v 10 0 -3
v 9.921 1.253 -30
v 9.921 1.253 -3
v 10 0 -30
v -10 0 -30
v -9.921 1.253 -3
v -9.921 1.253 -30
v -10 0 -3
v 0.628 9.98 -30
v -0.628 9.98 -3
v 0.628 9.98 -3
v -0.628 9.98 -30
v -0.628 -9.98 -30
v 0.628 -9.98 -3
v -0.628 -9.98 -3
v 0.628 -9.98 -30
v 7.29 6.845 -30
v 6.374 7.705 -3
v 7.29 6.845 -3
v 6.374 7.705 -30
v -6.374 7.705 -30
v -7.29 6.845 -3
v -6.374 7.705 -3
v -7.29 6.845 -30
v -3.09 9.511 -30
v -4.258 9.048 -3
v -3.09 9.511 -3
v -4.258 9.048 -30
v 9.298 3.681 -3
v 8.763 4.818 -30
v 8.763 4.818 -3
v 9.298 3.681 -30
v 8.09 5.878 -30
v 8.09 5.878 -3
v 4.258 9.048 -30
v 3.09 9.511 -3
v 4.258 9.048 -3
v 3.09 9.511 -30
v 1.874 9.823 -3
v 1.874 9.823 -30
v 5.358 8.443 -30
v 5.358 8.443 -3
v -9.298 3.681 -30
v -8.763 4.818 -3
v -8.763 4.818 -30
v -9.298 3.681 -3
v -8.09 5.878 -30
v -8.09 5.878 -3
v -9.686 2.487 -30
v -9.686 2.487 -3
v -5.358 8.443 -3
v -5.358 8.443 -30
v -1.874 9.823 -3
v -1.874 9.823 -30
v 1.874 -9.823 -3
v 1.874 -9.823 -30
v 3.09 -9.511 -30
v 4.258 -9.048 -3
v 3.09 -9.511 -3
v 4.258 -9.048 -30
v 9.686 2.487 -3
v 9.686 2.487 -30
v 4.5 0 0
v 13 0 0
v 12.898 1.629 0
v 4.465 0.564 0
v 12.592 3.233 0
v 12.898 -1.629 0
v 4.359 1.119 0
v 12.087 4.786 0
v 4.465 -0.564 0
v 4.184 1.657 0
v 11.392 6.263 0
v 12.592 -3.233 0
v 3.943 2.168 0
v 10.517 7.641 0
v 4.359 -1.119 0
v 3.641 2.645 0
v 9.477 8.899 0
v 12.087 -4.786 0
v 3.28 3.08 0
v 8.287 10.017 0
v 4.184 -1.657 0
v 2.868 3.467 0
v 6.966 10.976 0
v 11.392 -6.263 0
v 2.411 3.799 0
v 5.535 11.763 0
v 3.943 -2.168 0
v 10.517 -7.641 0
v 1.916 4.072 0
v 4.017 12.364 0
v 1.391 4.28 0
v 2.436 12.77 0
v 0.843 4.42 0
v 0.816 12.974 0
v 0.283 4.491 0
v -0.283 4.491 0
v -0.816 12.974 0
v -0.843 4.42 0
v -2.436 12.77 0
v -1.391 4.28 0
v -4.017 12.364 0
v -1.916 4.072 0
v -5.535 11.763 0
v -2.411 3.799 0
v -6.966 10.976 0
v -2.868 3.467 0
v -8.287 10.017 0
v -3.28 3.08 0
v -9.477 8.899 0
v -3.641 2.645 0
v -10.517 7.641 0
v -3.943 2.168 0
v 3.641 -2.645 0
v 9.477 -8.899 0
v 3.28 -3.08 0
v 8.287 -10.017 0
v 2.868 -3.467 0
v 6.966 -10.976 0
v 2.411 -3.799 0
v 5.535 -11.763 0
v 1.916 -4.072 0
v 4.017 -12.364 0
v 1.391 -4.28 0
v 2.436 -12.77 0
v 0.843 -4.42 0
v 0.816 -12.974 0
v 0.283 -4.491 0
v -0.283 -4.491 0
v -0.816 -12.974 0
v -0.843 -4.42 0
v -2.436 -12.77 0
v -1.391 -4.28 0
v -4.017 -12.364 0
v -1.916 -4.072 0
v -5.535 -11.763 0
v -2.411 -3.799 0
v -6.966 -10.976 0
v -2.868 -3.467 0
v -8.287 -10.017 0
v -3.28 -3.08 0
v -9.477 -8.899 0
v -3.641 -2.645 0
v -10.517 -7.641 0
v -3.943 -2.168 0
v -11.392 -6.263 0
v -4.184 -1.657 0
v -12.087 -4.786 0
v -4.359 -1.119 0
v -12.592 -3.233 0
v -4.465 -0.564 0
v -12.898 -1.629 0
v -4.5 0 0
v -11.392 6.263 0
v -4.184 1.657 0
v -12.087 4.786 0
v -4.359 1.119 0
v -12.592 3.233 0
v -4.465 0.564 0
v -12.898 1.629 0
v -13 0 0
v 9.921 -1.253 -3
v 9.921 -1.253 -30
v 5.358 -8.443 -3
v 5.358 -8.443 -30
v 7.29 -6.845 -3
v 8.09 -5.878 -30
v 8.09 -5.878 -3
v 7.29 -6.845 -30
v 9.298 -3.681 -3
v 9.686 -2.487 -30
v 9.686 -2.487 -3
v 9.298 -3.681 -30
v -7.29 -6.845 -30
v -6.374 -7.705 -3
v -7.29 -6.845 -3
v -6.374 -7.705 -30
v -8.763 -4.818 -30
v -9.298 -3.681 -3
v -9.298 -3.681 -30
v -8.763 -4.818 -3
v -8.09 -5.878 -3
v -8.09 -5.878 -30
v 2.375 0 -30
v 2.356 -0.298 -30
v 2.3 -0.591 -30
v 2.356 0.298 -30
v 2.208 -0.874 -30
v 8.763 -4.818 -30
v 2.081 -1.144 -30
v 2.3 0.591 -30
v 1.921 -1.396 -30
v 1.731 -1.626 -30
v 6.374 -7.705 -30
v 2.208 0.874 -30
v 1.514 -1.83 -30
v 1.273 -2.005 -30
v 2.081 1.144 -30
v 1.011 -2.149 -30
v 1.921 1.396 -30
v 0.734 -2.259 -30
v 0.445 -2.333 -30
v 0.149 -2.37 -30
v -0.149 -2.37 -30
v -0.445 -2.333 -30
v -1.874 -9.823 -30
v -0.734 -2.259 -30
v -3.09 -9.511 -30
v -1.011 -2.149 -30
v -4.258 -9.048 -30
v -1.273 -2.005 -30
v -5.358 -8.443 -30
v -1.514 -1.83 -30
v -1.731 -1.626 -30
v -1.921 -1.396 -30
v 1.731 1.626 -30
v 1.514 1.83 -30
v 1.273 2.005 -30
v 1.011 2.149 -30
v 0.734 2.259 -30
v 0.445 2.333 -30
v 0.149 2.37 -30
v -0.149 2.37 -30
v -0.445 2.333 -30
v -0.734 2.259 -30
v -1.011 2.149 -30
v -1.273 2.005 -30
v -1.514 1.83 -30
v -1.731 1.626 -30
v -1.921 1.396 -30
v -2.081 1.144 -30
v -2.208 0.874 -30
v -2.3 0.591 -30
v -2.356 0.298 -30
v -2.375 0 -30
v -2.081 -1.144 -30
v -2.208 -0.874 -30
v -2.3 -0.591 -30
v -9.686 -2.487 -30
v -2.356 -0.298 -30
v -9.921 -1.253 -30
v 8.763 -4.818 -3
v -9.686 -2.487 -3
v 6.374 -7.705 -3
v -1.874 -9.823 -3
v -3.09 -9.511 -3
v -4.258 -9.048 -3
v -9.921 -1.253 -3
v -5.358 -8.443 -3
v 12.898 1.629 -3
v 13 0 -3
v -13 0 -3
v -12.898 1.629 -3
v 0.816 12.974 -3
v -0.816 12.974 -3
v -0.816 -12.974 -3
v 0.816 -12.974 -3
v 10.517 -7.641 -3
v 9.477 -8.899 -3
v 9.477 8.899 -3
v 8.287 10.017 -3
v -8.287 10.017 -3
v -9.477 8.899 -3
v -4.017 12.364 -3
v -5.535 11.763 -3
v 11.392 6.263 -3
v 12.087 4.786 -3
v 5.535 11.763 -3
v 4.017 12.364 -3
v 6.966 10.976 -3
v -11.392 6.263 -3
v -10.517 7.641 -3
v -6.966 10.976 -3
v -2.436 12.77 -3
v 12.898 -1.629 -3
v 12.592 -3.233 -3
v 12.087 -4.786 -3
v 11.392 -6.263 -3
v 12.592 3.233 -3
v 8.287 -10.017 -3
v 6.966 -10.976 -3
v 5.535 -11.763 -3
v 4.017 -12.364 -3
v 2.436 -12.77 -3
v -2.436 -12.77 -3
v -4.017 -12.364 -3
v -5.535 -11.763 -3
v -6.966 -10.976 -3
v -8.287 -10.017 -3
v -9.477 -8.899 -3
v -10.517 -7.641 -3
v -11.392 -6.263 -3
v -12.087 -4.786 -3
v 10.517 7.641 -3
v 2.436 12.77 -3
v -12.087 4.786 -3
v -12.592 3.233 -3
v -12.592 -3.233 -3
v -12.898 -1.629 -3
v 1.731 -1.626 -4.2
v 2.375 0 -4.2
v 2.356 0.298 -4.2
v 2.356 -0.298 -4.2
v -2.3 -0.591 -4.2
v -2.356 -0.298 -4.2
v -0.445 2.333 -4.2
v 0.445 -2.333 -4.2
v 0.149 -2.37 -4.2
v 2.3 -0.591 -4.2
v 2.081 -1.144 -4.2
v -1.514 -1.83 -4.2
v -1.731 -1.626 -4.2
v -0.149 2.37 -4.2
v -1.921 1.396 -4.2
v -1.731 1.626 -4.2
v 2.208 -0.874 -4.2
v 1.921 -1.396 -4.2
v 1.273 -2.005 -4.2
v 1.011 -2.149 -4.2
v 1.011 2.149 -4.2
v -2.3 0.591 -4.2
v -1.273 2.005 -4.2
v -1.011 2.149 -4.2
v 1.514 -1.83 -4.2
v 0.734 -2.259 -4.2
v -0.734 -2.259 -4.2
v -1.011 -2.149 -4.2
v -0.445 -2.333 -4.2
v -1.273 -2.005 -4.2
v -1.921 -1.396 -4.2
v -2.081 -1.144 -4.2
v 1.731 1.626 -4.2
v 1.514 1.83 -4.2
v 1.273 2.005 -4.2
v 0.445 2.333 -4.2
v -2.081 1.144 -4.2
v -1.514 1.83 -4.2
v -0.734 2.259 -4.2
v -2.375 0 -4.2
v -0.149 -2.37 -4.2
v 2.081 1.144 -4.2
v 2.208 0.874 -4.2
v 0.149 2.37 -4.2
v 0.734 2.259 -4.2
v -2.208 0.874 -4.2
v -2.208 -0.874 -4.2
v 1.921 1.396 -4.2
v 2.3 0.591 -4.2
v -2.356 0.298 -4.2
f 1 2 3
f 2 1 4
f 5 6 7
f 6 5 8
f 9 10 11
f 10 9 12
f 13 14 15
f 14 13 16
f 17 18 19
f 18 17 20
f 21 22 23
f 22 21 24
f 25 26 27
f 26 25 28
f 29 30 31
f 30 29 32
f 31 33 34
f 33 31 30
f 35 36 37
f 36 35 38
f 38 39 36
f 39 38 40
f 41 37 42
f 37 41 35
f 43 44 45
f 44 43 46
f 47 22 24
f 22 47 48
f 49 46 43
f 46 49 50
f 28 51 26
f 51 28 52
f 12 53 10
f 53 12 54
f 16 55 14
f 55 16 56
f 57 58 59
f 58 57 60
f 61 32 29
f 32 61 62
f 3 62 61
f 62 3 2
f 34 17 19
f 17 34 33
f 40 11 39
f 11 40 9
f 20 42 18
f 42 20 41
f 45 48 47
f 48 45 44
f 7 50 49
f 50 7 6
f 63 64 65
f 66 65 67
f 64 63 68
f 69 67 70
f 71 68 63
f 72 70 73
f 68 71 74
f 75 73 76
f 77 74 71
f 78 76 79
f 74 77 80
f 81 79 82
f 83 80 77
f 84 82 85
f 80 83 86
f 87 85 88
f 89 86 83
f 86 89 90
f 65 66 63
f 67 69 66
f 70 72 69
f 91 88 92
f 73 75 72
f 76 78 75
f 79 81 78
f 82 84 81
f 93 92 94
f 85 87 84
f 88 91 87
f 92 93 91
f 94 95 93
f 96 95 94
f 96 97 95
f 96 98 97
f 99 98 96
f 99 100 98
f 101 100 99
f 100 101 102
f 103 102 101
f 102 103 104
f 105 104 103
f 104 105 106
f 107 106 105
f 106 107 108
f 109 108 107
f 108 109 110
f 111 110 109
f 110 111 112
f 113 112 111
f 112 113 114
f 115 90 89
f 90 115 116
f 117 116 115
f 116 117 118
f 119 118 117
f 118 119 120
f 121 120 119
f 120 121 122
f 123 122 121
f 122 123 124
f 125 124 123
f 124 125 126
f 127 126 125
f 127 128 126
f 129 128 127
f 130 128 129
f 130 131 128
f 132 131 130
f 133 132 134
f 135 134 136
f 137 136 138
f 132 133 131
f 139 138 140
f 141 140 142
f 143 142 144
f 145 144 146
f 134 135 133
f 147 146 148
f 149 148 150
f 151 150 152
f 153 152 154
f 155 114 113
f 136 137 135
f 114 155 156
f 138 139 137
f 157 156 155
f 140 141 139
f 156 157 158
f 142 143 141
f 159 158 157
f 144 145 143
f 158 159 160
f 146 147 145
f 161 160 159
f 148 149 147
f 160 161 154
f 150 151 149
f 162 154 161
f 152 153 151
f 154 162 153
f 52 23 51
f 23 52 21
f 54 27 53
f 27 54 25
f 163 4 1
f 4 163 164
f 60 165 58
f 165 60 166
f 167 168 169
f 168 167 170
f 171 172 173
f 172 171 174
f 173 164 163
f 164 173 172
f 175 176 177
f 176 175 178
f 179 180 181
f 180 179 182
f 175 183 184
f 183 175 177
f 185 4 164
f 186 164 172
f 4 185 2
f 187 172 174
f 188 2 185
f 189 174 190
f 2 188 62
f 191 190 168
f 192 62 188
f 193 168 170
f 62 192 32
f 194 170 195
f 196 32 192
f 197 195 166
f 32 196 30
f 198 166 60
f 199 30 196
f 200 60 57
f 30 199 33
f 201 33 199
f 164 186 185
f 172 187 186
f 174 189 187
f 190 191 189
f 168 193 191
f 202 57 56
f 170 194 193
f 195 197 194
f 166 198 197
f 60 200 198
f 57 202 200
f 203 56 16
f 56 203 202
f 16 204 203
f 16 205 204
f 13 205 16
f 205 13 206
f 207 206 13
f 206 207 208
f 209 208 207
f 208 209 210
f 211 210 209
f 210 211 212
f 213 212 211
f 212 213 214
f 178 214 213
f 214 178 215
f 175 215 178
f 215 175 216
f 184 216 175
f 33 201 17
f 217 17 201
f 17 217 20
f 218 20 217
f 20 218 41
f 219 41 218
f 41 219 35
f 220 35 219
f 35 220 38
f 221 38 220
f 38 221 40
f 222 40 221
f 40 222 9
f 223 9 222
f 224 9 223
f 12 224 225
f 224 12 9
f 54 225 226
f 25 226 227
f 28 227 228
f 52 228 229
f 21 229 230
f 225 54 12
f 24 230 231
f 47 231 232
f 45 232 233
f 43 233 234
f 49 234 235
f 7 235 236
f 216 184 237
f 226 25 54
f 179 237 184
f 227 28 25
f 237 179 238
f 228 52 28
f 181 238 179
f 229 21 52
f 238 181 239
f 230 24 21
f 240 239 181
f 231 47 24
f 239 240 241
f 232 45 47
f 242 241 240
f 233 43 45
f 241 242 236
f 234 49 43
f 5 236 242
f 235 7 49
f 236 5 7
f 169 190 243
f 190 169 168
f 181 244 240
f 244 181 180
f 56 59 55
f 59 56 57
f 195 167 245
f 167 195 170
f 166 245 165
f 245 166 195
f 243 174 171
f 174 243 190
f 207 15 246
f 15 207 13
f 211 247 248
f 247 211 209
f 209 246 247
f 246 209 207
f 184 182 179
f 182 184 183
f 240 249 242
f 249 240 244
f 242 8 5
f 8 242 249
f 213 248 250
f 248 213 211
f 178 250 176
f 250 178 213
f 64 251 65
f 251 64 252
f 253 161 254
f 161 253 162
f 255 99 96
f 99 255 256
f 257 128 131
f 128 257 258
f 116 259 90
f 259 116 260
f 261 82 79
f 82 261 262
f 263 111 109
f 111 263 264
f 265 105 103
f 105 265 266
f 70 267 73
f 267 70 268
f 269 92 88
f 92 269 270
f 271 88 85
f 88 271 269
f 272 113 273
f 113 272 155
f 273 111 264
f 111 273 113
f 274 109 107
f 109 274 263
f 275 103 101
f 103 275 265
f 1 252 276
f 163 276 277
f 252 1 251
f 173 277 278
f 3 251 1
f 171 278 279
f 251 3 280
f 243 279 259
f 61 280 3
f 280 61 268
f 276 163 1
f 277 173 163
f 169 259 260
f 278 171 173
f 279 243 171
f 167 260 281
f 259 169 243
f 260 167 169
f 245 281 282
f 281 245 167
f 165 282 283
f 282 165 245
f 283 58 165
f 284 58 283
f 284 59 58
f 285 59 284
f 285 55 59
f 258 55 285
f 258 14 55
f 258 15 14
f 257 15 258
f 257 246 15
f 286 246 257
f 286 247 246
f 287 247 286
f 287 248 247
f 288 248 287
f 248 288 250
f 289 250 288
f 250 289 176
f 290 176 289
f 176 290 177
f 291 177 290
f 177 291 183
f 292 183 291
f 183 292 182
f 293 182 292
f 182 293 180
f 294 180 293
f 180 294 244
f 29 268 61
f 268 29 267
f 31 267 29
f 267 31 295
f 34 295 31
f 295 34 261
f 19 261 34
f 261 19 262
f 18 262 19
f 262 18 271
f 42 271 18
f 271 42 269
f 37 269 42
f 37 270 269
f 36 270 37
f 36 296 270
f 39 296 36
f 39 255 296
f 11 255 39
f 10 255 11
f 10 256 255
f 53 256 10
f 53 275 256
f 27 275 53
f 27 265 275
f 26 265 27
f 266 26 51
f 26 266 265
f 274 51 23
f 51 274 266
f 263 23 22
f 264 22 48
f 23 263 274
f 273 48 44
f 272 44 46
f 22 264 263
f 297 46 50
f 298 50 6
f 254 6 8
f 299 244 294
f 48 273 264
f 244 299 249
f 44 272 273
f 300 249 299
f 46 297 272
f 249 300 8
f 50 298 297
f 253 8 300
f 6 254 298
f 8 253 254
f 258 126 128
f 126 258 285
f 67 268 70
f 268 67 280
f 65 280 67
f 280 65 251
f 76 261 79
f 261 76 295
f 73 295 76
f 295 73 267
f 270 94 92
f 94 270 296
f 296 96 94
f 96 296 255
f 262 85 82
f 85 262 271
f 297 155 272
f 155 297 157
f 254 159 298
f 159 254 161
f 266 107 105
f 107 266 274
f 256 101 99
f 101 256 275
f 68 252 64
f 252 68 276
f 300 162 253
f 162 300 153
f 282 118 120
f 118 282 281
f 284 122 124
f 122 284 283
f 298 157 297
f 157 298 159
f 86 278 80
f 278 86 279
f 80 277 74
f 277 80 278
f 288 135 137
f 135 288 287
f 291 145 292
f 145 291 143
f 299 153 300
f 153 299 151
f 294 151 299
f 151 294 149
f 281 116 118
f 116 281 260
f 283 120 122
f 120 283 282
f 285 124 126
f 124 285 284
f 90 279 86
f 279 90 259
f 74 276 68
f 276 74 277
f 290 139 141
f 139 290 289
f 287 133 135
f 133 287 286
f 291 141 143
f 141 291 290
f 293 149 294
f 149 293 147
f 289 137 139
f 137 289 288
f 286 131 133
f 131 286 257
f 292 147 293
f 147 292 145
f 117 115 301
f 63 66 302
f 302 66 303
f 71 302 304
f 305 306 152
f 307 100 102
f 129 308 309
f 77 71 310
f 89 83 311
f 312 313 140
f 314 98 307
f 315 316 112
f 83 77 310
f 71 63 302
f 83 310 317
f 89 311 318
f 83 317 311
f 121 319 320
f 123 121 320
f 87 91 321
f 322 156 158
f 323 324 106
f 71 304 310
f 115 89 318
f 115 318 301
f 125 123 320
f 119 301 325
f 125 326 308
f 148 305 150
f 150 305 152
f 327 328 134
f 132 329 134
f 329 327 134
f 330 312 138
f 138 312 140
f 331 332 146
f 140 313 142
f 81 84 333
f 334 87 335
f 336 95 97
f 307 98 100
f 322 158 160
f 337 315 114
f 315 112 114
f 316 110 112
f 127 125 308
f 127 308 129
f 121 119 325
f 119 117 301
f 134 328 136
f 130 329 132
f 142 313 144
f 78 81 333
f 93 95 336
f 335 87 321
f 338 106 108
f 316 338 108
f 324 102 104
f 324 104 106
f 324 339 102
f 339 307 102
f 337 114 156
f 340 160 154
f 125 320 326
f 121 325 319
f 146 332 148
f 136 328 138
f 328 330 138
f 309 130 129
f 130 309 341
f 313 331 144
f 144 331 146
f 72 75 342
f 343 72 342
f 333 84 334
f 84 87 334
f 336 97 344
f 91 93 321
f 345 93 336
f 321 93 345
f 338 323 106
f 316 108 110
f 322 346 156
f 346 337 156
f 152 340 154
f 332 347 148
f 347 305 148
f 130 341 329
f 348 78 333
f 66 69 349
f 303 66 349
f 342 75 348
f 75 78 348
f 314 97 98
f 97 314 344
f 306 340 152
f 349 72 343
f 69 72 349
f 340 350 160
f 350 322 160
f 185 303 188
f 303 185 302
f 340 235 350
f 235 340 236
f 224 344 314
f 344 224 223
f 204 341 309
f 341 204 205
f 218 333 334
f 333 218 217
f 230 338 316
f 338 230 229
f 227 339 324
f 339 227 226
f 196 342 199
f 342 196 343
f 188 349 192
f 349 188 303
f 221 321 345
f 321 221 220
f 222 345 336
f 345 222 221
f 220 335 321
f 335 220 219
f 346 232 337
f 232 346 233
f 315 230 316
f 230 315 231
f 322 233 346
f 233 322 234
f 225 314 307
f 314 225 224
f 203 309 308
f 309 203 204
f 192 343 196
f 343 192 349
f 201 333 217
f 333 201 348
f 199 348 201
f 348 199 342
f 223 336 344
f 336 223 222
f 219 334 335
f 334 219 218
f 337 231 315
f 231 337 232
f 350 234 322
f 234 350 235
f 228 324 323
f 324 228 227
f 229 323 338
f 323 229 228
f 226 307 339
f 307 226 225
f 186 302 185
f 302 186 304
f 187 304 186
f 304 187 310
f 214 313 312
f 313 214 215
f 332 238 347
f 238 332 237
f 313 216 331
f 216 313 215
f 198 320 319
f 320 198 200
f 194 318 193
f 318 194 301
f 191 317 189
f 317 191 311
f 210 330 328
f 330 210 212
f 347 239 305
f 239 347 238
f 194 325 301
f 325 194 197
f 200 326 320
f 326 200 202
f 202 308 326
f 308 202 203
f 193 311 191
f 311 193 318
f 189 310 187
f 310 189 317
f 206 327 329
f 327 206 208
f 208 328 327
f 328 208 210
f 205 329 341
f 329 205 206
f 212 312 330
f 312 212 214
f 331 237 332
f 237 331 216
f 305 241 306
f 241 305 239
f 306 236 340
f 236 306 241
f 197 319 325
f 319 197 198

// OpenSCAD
$fn = 50;


difference() {
	union() {
		translate(v = [0, 0, -30.0000000000]) {
			cylinder(h = 30, r = 10.0000000000);
		}
		translate(v = [0, 0, -3.0000000000]) {
			cylinder(h = 3, r = 13.0000000000);
		}
	}
	union() {
		translate(v = [0, 0, 0]) {
			rotate(a = [0, 0, 0]) {
				difference() {
					union() {
						#translate(v = [0, 0, -30.0000000000]) {
							cylinder(h = 30, r = 2.2500000000);
						}
						#translate(v = [0, 0, -4.2000000000]) {
							cylinder(h = 4.2000000000, r = 10.0000000000, r1 = 2.3750000000, r2 = 4.5000000000);
						}
						#translate(v = [0, 0, -30.0000000000]) {
							cylinder(h = 30, r = 2.3750000000);
						}
						#translate(v = [0, 0, -30.0000000000]) {
							cylinder(h = 30, r = 2.2500000000);
						}
					}
					union();
				}
			}
		}
	}
}
